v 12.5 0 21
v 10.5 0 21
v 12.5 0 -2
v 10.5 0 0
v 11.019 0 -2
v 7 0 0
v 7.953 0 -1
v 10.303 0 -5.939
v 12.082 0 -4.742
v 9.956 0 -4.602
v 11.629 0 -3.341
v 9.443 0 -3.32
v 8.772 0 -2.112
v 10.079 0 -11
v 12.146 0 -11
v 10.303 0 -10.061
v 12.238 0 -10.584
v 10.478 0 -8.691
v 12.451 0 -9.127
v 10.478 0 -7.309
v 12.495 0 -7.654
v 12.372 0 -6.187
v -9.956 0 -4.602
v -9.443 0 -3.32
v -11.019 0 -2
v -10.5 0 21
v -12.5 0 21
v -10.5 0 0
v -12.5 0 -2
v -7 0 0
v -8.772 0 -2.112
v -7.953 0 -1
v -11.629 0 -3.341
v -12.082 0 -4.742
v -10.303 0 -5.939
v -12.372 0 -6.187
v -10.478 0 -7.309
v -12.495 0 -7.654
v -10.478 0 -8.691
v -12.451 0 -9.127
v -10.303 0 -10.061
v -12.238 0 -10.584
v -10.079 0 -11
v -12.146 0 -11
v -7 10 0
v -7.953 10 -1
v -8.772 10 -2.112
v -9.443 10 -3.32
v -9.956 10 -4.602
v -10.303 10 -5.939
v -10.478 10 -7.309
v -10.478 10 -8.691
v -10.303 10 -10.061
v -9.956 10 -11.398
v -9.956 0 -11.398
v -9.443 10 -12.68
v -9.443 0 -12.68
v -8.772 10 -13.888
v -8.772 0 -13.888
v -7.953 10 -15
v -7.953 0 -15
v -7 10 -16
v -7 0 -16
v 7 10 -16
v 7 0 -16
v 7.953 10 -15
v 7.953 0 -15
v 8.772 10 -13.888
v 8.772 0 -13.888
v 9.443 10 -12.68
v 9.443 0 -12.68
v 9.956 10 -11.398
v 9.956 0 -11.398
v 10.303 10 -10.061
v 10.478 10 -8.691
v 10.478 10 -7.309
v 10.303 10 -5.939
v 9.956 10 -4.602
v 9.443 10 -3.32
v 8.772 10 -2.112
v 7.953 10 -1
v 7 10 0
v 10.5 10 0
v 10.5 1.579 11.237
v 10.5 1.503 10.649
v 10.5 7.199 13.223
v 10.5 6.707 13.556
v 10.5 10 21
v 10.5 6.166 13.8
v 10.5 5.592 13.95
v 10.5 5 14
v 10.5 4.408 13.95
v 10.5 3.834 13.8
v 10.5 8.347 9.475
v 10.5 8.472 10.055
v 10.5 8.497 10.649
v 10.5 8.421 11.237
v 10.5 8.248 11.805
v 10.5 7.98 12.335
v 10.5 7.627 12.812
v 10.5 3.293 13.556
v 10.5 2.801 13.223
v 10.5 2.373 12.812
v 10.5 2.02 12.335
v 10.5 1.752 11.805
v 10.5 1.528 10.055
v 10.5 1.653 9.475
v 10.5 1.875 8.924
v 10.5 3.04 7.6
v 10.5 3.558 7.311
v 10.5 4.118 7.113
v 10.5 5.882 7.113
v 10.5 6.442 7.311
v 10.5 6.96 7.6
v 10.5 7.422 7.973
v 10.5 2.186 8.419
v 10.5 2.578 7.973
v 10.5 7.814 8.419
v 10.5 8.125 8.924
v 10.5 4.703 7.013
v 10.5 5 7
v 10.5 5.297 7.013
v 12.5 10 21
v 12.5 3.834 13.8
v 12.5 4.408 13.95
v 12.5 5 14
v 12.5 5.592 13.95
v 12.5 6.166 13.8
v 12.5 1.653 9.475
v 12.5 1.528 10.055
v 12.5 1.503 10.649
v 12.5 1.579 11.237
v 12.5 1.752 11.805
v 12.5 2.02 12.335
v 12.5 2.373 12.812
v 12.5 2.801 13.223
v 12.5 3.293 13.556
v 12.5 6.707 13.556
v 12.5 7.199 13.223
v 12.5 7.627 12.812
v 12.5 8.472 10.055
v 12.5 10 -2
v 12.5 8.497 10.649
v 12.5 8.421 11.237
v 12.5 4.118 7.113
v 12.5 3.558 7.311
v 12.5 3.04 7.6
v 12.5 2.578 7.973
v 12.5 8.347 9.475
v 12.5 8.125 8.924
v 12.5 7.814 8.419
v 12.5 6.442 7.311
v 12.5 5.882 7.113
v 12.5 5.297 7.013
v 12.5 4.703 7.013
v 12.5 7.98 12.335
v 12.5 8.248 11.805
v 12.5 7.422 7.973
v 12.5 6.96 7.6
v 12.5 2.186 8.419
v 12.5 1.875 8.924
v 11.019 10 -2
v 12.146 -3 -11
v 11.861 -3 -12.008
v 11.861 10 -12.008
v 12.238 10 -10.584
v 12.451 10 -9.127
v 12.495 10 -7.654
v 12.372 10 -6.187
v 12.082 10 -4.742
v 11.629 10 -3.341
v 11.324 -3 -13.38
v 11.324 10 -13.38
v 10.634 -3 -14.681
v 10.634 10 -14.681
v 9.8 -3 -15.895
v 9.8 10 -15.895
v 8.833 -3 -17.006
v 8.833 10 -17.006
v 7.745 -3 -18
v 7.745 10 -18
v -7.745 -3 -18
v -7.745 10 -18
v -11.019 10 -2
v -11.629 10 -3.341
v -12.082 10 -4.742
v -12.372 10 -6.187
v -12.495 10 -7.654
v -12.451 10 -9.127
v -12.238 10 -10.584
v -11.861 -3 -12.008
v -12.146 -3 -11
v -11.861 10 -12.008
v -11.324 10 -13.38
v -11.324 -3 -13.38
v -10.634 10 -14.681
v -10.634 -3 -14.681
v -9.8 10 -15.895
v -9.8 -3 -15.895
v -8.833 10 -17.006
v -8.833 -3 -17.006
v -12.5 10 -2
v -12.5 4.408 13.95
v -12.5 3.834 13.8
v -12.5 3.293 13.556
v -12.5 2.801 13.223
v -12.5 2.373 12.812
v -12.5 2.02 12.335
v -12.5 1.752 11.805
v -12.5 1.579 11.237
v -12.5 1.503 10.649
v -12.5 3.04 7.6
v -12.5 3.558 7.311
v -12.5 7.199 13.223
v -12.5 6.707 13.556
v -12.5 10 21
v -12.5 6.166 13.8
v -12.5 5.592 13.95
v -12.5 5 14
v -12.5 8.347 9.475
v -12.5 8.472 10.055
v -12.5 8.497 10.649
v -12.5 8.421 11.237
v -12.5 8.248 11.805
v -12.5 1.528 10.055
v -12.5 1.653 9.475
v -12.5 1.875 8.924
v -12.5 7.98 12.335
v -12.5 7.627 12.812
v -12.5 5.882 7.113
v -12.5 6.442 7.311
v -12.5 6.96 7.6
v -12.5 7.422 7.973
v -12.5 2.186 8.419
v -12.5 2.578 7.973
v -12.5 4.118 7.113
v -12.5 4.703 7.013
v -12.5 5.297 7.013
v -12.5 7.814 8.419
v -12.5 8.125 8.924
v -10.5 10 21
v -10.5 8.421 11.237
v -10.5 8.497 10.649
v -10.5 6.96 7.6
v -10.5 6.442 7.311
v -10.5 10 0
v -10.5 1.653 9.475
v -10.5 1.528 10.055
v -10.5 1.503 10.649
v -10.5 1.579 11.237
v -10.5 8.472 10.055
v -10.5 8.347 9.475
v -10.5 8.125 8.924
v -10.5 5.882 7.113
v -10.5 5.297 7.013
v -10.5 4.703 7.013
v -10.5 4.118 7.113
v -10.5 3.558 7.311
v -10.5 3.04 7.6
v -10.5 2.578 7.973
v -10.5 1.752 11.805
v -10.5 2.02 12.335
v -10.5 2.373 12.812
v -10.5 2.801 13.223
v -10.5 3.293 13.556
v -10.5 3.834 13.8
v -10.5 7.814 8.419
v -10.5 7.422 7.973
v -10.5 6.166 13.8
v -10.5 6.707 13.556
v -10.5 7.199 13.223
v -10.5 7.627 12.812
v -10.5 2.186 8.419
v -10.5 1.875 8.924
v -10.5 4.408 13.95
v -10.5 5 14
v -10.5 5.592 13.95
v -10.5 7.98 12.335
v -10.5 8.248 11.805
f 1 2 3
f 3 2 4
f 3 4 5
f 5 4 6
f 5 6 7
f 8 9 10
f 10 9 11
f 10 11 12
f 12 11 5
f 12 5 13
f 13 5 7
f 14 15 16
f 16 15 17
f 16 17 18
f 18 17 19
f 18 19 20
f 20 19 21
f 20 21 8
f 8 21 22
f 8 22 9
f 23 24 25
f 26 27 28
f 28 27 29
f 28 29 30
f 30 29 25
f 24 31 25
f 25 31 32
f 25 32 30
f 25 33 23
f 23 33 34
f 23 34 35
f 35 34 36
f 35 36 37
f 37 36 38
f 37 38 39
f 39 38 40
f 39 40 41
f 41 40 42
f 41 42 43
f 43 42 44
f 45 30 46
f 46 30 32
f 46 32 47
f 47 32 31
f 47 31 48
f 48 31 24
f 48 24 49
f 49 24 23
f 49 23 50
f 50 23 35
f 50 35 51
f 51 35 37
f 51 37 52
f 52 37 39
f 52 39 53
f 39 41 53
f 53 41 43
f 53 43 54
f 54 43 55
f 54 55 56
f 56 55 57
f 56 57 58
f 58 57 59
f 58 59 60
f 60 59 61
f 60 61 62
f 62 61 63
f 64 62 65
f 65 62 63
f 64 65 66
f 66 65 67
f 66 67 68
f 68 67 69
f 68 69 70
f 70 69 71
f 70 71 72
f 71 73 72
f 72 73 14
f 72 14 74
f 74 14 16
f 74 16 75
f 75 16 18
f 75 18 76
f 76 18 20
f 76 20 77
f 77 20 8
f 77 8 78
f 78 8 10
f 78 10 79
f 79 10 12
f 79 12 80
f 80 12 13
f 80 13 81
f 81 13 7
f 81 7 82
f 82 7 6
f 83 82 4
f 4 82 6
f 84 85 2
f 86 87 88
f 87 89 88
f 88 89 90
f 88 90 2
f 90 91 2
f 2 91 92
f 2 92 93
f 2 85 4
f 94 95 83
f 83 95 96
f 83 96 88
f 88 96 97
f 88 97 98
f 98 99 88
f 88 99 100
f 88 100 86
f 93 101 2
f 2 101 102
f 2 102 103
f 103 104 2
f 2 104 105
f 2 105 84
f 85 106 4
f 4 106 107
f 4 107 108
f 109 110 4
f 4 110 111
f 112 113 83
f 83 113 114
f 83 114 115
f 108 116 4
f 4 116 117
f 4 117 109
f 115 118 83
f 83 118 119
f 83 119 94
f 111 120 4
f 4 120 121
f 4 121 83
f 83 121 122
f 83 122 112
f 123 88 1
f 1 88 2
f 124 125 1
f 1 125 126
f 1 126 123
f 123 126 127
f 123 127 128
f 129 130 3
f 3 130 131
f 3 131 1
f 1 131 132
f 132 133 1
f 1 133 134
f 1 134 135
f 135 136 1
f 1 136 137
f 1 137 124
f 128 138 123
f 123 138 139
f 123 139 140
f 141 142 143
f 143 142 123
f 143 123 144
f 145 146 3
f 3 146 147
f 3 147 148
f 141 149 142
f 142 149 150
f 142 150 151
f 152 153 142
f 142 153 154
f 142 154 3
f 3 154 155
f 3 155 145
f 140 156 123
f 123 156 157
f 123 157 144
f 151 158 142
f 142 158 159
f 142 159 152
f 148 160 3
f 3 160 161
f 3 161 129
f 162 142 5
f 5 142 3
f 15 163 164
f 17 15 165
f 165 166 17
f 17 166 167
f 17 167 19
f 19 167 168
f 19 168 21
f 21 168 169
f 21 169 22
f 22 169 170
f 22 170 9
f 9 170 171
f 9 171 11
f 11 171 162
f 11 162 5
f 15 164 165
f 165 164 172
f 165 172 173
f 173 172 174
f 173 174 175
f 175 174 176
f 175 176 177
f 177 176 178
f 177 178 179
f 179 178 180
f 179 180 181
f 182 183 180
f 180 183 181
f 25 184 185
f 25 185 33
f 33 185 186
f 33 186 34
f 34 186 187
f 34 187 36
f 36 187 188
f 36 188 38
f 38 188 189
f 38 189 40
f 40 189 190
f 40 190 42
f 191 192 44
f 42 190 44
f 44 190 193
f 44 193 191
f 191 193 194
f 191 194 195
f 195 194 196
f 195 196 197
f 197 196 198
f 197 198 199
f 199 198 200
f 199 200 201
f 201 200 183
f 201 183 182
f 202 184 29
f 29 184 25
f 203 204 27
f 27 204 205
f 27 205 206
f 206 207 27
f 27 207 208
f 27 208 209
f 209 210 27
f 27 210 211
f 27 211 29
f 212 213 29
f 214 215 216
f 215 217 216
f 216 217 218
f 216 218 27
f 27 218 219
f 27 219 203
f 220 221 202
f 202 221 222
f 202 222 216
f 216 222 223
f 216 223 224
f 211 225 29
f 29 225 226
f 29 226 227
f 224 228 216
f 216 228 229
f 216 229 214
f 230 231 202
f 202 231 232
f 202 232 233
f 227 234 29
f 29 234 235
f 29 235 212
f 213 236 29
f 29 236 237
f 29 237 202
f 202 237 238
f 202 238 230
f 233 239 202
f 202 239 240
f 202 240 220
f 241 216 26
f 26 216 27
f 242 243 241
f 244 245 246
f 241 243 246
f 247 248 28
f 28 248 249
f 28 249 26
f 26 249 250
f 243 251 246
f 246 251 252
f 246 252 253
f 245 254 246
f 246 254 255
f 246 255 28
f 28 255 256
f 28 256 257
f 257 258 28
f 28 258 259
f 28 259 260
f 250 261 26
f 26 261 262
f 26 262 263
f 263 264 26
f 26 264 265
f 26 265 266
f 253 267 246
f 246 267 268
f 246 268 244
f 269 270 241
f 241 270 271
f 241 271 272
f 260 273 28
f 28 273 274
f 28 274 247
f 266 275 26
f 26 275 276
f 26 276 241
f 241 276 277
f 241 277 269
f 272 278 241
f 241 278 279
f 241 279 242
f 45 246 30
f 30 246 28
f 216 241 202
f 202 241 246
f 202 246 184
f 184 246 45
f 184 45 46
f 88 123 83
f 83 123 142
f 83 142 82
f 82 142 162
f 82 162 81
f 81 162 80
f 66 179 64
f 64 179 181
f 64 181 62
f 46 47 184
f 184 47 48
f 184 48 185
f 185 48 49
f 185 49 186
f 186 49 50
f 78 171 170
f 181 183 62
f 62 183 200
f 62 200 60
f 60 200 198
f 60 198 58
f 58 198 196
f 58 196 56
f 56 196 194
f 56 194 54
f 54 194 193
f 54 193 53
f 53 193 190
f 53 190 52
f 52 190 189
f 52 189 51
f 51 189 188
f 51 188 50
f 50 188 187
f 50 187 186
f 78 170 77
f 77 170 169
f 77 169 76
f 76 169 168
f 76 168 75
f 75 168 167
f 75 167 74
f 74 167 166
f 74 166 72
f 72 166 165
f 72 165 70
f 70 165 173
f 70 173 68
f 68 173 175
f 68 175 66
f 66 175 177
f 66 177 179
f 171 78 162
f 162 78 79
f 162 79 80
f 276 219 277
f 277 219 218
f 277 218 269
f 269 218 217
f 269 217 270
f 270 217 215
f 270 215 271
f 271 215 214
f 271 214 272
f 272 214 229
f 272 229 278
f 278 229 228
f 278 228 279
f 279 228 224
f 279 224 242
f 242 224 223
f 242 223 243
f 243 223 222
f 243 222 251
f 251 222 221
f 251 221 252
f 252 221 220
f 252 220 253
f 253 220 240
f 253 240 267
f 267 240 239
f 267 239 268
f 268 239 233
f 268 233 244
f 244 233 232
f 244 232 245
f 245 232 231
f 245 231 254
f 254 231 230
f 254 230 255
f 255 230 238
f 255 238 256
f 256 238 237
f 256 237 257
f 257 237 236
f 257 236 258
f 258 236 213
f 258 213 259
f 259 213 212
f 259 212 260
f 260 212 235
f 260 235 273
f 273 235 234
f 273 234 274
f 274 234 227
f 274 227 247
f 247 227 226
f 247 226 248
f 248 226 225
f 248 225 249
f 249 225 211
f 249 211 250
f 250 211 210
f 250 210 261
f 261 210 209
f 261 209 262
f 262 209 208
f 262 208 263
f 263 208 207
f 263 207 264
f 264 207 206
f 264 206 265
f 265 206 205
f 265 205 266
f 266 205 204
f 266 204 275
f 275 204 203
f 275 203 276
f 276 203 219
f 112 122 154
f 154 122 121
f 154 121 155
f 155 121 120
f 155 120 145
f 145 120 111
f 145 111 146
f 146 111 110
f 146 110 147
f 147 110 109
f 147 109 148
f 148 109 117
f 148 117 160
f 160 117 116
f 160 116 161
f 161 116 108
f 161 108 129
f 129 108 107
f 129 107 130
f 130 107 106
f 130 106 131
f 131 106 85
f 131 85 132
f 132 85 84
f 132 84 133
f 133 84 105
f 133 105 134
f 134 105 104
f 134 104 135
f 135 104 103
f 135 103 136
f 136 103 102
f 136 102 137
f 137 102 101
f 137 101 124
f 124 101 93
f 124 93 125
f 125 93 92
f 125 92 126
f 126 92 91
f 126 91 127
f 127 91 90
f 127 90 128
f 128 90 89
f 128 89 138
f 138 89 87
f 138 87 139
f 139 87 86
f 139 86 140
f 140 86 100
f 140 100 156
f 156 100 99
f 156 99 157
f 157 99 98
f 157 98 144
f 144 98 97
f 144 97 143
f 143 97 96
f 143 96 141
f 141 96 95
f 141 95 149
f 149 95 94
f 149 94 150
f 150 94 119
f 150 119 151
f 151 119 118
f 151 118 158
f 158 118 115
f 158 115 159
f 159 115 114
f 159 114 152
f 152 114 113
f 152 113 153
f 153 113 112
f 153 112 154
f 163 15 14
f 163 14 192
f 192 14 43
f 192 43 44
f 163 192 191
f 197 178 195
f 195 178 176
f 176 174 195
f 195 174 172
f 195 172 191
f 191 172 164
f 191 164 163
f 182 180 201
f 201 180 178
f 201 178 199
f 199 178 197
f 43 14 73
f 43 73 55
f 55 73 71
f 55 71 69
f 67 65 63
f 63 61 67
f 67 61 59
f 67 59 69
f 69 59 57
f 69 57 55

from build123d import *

# Parameters (mm, degrees)
BOSS_EXTRUDE1_DEPTH = 10
SKETCH2_R           = 3.5
CUT_EXTRUDE1_DEPTH  = 26
BOSS_EXTRUDE2_DEPTH = 3


with BuildPart() as part:
    # Sketch1 → Boss-Extrude1 (new body)
    with BuildSketch(Plane(origin=(0, 0, 0), x_dir=(1, 0, 0), z_dir=(0, 1, 0))):
        with BuildLine():
            Line((7, 16), (-7, 16))
            ThreePointArc((-7, 16), (-10.5, 8), (-7, 0))
            Line((-7, 0), (-10.5, 0))
            Line((-10.5, 0), (-10.5, -21))
            Line((-10.5, -21), (-12.5, -21))
            Line((-12.5, -21), (-12.5, 2))
            Line((-12.5, 2), (-11.018793277, 2))
            ThreePointArc((-11.018793277, 2), (-12.238312239, 10.584439081), (-7.745064294, 18))
            Line((-7.745064294, 18), (7.745064294, 18))
            ThreePointArc((7.745064294, 18), (12.238312239, 10.584439081), (11.018793277, 2))
            Line((11.018793277, 2), (12.5, 2))
            Line((12.5, 2), (12.5, -21))
            Line((12.5, -21), (10.5, -21))
            Line((10.5, -21), (10.5, 0))
            Line((10.5, 0), (7, 0))
            ThreePointArc((7, 0), (10.5, 8), (7, 16))
        make_face()
    extrude(amount=BOSS_EXTRUDE1_DEPTH)

    # Sketch2 → Cut-Extrude1 (cut, through all)
    with BuildSketch(Plane.ZY.offset(12.5)):
        with Locations((10.5, 5)):
            Circle(SKETCH2_R)
    extrude(amount=-CUT_EXTRUDE1_DEPTH, mode=Mode.SUBTRACT)

    # Sketch3 → Boss-Extrude2 (add)
    with BuildSketch(Plane.XZ):
        with BuildLine():
            Line((-12.146112723, -11), (12.146112723, -11))
            ThreePointArc((12.146112723, -11), (10.521970317, -14.862383465), (7.745064294, -18))
            Line((7.745064294, -18), (-7.745064294, -18))
            ThreePointArc((-7.745064294, -18), (-10.521970317, -14.862383465), (-12.146112723, -11))
        make_face()
    extrude(amount=BOSS_EXTRUDE2_DEPTH)


solid = part.part
